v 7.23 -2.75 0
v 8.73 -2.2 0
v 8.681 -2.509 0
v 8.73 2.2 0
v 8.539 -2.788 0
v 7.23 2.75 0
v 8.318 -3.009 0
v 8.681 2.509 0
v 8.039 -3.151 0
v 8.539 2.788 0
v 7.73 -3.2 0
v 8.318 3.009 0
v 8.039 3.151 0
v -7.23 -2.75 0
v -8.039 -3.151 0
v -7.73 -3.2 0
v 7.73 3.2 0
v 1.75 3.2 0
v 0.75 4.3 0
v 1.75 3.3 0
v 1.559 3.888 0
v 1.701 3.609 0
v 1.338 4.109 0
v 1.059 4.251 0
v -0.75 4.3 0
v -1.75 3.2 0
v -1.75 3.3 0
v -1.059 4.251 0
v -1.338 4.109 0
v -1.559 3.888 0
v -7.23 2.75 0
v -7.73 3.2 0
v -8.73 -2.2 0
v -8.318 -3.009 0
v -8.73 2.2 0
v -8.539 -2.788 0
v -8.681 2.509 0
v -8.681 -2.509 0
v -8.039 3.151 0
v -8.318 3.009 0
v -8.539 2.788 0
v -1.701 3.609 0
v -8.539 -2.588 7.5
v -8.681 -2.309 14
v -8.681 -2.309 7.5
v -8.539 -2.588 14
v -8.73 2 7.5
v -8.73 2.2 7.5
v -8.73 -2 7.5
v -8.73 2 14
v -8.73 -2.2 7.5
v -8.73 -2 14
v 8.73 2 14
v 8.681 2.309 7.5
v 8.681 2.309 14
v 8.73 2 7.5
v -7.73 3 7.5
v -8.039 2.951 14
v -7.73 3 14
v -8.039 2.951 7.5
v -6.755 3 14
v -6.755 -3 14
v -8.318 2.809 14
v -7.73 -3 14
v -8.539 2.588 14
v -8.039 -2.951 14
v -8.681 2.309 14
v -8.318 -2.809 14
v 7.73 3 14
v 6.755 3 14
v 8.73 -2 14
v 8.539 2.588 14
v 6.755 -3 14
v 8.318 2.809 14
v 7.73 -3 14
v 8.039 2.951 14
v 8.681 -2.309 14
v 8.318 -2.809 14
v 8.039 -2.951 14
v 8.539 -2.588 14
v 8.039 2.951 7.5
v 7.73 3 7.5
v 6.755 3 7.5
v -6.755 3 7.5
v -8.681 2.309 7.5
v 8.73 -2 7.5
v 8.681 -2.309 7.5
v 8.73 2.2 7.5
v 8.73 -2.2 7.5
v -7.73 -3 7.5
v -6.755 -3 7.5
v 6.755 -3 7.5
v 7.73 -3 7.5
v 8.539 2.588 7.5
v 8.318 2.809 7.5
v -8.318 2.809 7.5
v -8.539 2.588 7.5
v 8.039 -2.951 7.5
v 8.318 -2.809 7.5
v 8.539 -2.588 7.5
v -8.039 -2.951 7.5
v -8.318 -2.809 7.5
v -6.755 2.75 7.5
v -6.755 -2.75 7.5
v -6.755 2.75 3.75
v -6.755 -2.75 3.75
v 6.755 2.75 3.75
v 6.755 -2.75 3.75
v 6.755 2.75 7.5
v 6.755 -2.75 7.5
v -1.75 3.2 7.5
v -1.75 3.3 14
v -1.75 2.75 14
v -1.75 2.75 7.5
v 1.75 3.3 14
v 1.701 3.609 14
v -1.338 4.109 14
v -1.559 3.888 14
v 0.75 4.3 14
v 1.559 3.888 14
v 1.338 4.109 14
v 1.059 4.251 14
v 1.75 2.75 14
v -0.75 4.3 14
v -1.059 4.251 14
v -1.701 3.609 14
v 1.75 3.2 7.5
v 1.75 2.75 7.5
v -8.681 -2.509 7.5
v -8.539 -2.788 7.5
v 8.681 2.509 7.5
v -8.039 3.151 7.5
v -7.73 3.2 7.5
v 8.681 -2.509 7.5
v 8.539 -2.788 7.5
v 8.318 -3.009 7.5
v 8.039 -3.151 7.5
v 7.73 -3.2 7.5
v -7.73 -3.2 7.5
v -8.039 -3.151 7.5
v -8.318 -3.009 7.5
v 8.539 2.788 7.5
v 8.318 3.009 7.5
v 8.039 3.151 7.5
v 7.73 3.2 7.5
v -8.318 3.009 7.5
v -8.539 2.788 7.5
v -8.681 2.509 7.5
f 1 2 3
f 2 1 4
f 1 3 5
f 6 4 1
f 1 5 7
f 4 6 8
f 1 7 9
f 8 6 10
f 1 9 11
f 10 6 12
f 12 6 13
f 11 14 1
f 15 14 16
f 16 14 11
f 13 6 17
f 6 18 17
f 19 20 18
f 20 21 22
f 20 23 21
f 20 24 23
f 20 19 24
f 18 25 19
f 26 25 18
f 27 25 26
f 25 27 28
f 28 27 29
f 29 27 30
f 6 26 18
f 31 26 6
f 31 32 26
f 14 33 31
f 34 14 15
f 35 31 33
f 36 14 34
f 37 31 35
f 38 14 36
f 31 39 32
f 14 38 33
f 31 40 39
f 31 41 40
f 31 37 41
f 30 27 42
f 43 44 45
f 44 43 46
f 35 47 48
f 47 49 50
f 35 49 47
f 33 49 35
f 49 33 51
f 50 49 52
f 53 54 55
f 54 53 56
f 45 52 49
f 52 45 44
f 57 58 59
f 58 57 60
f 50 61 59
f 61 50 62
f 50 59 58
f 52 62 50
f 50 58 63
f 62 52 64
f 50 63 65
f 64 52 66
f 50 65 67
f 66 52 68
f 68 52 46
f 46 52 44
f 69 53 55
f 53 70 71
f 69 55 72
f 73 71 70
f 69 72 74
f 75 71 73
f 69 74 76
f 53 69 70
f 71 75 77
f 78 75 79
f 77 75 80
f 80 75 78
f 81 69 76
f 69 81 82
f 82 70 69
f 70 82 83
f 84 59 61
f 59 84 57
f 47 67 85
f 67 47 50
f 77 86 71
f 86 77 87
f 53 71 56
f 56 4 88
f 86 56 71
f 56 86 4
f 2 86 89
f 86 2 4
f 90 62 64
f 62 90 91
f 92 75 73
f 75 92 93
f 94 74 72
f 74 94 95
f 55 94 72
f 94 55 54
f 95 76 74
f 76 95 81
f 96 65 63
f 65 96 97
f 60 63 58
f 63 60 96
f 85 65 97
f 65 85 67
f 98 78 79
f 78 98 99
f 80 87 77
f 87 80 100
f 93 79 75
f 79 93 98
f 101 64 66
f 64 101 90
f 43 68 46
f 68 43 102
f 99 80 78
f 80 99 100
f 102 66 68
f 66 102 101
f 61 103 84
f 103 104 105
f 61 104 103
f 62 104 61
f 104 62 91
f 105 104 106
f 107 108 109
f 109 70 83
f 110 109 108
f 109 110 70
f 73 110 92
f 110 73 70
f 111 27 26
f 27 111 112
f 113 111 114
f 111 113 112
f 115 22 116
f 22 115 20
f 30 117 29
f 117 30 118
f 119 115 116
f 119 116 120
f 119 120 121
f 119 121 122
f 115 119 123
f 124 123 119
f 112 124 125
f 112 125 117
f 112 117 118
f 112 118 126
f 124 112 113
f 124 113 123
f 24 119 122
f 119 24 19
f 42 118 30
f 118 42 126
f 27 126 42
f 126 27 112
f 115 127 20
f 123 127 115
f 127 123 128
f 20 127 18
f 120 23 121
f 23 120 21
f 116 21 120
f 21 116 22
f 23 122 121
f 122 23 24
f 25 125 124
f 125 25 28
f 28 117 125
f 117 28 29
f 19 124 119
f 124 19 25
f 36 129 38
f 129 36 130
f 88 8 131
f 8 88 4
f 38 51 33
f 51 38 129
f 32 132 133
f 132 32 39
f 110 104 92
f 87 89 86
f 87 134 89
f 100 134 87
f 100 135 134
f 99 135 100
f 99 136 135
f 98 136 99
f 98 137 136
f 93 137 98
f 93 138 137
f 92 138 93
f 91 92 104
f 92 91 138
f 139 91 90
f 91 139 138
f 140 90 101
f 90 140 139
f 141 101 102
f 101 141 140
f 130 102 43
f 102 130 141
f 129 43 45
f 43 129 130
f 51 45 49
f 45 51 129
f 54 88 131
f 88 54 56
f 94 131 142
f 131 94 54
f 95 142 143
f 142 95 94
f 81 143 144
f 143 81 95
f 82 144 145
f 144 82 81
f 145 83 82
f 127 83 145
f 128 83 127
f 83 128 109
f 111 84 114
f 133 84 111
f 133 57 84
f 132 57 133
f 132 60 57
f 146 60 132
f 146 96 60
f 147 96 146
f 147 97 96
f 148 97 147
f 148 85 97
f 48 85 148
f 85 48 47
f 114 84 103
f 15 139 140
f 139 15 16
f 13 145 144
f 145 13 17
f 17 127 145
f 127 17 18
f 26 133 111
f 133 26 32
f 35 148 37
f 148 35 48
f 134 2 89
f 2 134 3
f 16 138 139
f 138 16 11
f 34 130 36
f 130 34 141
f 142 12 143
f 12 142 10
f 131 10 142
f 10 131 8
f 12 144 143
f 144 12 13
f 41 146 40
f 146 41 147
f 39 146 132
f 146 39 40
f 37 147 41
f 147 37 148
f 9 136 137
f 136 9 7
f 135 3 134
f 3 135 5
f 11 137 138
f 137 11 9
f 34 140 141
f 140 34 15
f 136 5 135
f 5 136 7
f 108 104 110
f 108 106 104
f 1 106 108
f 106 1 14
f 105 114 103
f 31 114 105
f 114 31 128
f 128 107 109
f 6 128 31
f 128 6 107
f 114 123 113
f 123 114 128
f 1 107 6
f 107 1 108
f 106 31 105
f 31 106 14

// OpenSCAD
/**********************************************************\
*                                                          *
*  IDC-Socket Adaptor for Female Headers                   *
*  by Mose                                                 *
*  http://www.thingiverse.com/mose                         *
*  build after datasheets for                              *
*   - MPE-Garry 094 series female header                   *
*   - Amtek Technology IDC1 series IDC socket              *
*                                                          *
\**********************************************************/
/*
    Remixed By Brian Khuu to take into account 
*/
$fn=20;

// Accounting for FDM printer inaccuracy
nozzledia = 0.45;

// pin count; change to match your header
PINS   = 10;
HEIGHT = 14;

// IDC Specs
idc_depth=6.5;

module cube_rounded(size, radius=0)
{ // Round corners for Openscad - By WilliamAAdams Jun 15, 2011 (But adjusted to always fit within the xyz size)
    x = size[0];
    y = size[1];
    z = size[2];
    if (radius > 0)
    {
        linear_extrude(height=z)
        hull()
        { // place 4 circles in the corners, with the given radius
            translate([(-x/2)+(radius), (-y/2)+(radius), 0])
                circle(r=radius);
            translate([(x/2)-(radius), (-y/2)+(radius), 0])
                circle(r=radius);
            translate([(-x/2)+(radius), (y/2)-(radius), 0])
                circle(r=radius);
            translate([(x/2)-(radius), (y/2)-(radius), 0])
                circle(r=radius);
        }
    }
    else
    {
        translate([0,0,z/2])
            cube([x,y,z], center=true);
    }
}

// don't change below
PW = (PINS/2-1)*2.54;

difference(){
	union(){
        difference()
        { // Side Locks
            cube_rounded([7.3+PW, 6, HEIGHT],radius=1);
            translate([0,0,-1])
              cube_rounded([3.35+PW, 7, HEIGHT+2], radius=0);
        }
        
        // Tab
	    translate([0,0.8,0])
	        cube_rounded([3.5, 7, HEIGHT],radius=1);

        // Bottom Base
        cube_rounded([7.3+PW, 5.5+2*nozzledia, HEIGHT-idc_depth],radius=1);
	}

    // Hole
    translate([0,0,-1])
        cube_rounded([3.35+PW, 5.5, HEIGHT+2], radius=0);

    // Bottom Base
    hull()
    {
        cube_rounded([3.35+PW, 5.5, (HEIGHT-idc_depth)/2], radius=0);
        translate([0,0,-1])
            cube_rounded([7.3+PW-3, 5.5, 1],radius=0);
    }
}

echo((6-5.5));
